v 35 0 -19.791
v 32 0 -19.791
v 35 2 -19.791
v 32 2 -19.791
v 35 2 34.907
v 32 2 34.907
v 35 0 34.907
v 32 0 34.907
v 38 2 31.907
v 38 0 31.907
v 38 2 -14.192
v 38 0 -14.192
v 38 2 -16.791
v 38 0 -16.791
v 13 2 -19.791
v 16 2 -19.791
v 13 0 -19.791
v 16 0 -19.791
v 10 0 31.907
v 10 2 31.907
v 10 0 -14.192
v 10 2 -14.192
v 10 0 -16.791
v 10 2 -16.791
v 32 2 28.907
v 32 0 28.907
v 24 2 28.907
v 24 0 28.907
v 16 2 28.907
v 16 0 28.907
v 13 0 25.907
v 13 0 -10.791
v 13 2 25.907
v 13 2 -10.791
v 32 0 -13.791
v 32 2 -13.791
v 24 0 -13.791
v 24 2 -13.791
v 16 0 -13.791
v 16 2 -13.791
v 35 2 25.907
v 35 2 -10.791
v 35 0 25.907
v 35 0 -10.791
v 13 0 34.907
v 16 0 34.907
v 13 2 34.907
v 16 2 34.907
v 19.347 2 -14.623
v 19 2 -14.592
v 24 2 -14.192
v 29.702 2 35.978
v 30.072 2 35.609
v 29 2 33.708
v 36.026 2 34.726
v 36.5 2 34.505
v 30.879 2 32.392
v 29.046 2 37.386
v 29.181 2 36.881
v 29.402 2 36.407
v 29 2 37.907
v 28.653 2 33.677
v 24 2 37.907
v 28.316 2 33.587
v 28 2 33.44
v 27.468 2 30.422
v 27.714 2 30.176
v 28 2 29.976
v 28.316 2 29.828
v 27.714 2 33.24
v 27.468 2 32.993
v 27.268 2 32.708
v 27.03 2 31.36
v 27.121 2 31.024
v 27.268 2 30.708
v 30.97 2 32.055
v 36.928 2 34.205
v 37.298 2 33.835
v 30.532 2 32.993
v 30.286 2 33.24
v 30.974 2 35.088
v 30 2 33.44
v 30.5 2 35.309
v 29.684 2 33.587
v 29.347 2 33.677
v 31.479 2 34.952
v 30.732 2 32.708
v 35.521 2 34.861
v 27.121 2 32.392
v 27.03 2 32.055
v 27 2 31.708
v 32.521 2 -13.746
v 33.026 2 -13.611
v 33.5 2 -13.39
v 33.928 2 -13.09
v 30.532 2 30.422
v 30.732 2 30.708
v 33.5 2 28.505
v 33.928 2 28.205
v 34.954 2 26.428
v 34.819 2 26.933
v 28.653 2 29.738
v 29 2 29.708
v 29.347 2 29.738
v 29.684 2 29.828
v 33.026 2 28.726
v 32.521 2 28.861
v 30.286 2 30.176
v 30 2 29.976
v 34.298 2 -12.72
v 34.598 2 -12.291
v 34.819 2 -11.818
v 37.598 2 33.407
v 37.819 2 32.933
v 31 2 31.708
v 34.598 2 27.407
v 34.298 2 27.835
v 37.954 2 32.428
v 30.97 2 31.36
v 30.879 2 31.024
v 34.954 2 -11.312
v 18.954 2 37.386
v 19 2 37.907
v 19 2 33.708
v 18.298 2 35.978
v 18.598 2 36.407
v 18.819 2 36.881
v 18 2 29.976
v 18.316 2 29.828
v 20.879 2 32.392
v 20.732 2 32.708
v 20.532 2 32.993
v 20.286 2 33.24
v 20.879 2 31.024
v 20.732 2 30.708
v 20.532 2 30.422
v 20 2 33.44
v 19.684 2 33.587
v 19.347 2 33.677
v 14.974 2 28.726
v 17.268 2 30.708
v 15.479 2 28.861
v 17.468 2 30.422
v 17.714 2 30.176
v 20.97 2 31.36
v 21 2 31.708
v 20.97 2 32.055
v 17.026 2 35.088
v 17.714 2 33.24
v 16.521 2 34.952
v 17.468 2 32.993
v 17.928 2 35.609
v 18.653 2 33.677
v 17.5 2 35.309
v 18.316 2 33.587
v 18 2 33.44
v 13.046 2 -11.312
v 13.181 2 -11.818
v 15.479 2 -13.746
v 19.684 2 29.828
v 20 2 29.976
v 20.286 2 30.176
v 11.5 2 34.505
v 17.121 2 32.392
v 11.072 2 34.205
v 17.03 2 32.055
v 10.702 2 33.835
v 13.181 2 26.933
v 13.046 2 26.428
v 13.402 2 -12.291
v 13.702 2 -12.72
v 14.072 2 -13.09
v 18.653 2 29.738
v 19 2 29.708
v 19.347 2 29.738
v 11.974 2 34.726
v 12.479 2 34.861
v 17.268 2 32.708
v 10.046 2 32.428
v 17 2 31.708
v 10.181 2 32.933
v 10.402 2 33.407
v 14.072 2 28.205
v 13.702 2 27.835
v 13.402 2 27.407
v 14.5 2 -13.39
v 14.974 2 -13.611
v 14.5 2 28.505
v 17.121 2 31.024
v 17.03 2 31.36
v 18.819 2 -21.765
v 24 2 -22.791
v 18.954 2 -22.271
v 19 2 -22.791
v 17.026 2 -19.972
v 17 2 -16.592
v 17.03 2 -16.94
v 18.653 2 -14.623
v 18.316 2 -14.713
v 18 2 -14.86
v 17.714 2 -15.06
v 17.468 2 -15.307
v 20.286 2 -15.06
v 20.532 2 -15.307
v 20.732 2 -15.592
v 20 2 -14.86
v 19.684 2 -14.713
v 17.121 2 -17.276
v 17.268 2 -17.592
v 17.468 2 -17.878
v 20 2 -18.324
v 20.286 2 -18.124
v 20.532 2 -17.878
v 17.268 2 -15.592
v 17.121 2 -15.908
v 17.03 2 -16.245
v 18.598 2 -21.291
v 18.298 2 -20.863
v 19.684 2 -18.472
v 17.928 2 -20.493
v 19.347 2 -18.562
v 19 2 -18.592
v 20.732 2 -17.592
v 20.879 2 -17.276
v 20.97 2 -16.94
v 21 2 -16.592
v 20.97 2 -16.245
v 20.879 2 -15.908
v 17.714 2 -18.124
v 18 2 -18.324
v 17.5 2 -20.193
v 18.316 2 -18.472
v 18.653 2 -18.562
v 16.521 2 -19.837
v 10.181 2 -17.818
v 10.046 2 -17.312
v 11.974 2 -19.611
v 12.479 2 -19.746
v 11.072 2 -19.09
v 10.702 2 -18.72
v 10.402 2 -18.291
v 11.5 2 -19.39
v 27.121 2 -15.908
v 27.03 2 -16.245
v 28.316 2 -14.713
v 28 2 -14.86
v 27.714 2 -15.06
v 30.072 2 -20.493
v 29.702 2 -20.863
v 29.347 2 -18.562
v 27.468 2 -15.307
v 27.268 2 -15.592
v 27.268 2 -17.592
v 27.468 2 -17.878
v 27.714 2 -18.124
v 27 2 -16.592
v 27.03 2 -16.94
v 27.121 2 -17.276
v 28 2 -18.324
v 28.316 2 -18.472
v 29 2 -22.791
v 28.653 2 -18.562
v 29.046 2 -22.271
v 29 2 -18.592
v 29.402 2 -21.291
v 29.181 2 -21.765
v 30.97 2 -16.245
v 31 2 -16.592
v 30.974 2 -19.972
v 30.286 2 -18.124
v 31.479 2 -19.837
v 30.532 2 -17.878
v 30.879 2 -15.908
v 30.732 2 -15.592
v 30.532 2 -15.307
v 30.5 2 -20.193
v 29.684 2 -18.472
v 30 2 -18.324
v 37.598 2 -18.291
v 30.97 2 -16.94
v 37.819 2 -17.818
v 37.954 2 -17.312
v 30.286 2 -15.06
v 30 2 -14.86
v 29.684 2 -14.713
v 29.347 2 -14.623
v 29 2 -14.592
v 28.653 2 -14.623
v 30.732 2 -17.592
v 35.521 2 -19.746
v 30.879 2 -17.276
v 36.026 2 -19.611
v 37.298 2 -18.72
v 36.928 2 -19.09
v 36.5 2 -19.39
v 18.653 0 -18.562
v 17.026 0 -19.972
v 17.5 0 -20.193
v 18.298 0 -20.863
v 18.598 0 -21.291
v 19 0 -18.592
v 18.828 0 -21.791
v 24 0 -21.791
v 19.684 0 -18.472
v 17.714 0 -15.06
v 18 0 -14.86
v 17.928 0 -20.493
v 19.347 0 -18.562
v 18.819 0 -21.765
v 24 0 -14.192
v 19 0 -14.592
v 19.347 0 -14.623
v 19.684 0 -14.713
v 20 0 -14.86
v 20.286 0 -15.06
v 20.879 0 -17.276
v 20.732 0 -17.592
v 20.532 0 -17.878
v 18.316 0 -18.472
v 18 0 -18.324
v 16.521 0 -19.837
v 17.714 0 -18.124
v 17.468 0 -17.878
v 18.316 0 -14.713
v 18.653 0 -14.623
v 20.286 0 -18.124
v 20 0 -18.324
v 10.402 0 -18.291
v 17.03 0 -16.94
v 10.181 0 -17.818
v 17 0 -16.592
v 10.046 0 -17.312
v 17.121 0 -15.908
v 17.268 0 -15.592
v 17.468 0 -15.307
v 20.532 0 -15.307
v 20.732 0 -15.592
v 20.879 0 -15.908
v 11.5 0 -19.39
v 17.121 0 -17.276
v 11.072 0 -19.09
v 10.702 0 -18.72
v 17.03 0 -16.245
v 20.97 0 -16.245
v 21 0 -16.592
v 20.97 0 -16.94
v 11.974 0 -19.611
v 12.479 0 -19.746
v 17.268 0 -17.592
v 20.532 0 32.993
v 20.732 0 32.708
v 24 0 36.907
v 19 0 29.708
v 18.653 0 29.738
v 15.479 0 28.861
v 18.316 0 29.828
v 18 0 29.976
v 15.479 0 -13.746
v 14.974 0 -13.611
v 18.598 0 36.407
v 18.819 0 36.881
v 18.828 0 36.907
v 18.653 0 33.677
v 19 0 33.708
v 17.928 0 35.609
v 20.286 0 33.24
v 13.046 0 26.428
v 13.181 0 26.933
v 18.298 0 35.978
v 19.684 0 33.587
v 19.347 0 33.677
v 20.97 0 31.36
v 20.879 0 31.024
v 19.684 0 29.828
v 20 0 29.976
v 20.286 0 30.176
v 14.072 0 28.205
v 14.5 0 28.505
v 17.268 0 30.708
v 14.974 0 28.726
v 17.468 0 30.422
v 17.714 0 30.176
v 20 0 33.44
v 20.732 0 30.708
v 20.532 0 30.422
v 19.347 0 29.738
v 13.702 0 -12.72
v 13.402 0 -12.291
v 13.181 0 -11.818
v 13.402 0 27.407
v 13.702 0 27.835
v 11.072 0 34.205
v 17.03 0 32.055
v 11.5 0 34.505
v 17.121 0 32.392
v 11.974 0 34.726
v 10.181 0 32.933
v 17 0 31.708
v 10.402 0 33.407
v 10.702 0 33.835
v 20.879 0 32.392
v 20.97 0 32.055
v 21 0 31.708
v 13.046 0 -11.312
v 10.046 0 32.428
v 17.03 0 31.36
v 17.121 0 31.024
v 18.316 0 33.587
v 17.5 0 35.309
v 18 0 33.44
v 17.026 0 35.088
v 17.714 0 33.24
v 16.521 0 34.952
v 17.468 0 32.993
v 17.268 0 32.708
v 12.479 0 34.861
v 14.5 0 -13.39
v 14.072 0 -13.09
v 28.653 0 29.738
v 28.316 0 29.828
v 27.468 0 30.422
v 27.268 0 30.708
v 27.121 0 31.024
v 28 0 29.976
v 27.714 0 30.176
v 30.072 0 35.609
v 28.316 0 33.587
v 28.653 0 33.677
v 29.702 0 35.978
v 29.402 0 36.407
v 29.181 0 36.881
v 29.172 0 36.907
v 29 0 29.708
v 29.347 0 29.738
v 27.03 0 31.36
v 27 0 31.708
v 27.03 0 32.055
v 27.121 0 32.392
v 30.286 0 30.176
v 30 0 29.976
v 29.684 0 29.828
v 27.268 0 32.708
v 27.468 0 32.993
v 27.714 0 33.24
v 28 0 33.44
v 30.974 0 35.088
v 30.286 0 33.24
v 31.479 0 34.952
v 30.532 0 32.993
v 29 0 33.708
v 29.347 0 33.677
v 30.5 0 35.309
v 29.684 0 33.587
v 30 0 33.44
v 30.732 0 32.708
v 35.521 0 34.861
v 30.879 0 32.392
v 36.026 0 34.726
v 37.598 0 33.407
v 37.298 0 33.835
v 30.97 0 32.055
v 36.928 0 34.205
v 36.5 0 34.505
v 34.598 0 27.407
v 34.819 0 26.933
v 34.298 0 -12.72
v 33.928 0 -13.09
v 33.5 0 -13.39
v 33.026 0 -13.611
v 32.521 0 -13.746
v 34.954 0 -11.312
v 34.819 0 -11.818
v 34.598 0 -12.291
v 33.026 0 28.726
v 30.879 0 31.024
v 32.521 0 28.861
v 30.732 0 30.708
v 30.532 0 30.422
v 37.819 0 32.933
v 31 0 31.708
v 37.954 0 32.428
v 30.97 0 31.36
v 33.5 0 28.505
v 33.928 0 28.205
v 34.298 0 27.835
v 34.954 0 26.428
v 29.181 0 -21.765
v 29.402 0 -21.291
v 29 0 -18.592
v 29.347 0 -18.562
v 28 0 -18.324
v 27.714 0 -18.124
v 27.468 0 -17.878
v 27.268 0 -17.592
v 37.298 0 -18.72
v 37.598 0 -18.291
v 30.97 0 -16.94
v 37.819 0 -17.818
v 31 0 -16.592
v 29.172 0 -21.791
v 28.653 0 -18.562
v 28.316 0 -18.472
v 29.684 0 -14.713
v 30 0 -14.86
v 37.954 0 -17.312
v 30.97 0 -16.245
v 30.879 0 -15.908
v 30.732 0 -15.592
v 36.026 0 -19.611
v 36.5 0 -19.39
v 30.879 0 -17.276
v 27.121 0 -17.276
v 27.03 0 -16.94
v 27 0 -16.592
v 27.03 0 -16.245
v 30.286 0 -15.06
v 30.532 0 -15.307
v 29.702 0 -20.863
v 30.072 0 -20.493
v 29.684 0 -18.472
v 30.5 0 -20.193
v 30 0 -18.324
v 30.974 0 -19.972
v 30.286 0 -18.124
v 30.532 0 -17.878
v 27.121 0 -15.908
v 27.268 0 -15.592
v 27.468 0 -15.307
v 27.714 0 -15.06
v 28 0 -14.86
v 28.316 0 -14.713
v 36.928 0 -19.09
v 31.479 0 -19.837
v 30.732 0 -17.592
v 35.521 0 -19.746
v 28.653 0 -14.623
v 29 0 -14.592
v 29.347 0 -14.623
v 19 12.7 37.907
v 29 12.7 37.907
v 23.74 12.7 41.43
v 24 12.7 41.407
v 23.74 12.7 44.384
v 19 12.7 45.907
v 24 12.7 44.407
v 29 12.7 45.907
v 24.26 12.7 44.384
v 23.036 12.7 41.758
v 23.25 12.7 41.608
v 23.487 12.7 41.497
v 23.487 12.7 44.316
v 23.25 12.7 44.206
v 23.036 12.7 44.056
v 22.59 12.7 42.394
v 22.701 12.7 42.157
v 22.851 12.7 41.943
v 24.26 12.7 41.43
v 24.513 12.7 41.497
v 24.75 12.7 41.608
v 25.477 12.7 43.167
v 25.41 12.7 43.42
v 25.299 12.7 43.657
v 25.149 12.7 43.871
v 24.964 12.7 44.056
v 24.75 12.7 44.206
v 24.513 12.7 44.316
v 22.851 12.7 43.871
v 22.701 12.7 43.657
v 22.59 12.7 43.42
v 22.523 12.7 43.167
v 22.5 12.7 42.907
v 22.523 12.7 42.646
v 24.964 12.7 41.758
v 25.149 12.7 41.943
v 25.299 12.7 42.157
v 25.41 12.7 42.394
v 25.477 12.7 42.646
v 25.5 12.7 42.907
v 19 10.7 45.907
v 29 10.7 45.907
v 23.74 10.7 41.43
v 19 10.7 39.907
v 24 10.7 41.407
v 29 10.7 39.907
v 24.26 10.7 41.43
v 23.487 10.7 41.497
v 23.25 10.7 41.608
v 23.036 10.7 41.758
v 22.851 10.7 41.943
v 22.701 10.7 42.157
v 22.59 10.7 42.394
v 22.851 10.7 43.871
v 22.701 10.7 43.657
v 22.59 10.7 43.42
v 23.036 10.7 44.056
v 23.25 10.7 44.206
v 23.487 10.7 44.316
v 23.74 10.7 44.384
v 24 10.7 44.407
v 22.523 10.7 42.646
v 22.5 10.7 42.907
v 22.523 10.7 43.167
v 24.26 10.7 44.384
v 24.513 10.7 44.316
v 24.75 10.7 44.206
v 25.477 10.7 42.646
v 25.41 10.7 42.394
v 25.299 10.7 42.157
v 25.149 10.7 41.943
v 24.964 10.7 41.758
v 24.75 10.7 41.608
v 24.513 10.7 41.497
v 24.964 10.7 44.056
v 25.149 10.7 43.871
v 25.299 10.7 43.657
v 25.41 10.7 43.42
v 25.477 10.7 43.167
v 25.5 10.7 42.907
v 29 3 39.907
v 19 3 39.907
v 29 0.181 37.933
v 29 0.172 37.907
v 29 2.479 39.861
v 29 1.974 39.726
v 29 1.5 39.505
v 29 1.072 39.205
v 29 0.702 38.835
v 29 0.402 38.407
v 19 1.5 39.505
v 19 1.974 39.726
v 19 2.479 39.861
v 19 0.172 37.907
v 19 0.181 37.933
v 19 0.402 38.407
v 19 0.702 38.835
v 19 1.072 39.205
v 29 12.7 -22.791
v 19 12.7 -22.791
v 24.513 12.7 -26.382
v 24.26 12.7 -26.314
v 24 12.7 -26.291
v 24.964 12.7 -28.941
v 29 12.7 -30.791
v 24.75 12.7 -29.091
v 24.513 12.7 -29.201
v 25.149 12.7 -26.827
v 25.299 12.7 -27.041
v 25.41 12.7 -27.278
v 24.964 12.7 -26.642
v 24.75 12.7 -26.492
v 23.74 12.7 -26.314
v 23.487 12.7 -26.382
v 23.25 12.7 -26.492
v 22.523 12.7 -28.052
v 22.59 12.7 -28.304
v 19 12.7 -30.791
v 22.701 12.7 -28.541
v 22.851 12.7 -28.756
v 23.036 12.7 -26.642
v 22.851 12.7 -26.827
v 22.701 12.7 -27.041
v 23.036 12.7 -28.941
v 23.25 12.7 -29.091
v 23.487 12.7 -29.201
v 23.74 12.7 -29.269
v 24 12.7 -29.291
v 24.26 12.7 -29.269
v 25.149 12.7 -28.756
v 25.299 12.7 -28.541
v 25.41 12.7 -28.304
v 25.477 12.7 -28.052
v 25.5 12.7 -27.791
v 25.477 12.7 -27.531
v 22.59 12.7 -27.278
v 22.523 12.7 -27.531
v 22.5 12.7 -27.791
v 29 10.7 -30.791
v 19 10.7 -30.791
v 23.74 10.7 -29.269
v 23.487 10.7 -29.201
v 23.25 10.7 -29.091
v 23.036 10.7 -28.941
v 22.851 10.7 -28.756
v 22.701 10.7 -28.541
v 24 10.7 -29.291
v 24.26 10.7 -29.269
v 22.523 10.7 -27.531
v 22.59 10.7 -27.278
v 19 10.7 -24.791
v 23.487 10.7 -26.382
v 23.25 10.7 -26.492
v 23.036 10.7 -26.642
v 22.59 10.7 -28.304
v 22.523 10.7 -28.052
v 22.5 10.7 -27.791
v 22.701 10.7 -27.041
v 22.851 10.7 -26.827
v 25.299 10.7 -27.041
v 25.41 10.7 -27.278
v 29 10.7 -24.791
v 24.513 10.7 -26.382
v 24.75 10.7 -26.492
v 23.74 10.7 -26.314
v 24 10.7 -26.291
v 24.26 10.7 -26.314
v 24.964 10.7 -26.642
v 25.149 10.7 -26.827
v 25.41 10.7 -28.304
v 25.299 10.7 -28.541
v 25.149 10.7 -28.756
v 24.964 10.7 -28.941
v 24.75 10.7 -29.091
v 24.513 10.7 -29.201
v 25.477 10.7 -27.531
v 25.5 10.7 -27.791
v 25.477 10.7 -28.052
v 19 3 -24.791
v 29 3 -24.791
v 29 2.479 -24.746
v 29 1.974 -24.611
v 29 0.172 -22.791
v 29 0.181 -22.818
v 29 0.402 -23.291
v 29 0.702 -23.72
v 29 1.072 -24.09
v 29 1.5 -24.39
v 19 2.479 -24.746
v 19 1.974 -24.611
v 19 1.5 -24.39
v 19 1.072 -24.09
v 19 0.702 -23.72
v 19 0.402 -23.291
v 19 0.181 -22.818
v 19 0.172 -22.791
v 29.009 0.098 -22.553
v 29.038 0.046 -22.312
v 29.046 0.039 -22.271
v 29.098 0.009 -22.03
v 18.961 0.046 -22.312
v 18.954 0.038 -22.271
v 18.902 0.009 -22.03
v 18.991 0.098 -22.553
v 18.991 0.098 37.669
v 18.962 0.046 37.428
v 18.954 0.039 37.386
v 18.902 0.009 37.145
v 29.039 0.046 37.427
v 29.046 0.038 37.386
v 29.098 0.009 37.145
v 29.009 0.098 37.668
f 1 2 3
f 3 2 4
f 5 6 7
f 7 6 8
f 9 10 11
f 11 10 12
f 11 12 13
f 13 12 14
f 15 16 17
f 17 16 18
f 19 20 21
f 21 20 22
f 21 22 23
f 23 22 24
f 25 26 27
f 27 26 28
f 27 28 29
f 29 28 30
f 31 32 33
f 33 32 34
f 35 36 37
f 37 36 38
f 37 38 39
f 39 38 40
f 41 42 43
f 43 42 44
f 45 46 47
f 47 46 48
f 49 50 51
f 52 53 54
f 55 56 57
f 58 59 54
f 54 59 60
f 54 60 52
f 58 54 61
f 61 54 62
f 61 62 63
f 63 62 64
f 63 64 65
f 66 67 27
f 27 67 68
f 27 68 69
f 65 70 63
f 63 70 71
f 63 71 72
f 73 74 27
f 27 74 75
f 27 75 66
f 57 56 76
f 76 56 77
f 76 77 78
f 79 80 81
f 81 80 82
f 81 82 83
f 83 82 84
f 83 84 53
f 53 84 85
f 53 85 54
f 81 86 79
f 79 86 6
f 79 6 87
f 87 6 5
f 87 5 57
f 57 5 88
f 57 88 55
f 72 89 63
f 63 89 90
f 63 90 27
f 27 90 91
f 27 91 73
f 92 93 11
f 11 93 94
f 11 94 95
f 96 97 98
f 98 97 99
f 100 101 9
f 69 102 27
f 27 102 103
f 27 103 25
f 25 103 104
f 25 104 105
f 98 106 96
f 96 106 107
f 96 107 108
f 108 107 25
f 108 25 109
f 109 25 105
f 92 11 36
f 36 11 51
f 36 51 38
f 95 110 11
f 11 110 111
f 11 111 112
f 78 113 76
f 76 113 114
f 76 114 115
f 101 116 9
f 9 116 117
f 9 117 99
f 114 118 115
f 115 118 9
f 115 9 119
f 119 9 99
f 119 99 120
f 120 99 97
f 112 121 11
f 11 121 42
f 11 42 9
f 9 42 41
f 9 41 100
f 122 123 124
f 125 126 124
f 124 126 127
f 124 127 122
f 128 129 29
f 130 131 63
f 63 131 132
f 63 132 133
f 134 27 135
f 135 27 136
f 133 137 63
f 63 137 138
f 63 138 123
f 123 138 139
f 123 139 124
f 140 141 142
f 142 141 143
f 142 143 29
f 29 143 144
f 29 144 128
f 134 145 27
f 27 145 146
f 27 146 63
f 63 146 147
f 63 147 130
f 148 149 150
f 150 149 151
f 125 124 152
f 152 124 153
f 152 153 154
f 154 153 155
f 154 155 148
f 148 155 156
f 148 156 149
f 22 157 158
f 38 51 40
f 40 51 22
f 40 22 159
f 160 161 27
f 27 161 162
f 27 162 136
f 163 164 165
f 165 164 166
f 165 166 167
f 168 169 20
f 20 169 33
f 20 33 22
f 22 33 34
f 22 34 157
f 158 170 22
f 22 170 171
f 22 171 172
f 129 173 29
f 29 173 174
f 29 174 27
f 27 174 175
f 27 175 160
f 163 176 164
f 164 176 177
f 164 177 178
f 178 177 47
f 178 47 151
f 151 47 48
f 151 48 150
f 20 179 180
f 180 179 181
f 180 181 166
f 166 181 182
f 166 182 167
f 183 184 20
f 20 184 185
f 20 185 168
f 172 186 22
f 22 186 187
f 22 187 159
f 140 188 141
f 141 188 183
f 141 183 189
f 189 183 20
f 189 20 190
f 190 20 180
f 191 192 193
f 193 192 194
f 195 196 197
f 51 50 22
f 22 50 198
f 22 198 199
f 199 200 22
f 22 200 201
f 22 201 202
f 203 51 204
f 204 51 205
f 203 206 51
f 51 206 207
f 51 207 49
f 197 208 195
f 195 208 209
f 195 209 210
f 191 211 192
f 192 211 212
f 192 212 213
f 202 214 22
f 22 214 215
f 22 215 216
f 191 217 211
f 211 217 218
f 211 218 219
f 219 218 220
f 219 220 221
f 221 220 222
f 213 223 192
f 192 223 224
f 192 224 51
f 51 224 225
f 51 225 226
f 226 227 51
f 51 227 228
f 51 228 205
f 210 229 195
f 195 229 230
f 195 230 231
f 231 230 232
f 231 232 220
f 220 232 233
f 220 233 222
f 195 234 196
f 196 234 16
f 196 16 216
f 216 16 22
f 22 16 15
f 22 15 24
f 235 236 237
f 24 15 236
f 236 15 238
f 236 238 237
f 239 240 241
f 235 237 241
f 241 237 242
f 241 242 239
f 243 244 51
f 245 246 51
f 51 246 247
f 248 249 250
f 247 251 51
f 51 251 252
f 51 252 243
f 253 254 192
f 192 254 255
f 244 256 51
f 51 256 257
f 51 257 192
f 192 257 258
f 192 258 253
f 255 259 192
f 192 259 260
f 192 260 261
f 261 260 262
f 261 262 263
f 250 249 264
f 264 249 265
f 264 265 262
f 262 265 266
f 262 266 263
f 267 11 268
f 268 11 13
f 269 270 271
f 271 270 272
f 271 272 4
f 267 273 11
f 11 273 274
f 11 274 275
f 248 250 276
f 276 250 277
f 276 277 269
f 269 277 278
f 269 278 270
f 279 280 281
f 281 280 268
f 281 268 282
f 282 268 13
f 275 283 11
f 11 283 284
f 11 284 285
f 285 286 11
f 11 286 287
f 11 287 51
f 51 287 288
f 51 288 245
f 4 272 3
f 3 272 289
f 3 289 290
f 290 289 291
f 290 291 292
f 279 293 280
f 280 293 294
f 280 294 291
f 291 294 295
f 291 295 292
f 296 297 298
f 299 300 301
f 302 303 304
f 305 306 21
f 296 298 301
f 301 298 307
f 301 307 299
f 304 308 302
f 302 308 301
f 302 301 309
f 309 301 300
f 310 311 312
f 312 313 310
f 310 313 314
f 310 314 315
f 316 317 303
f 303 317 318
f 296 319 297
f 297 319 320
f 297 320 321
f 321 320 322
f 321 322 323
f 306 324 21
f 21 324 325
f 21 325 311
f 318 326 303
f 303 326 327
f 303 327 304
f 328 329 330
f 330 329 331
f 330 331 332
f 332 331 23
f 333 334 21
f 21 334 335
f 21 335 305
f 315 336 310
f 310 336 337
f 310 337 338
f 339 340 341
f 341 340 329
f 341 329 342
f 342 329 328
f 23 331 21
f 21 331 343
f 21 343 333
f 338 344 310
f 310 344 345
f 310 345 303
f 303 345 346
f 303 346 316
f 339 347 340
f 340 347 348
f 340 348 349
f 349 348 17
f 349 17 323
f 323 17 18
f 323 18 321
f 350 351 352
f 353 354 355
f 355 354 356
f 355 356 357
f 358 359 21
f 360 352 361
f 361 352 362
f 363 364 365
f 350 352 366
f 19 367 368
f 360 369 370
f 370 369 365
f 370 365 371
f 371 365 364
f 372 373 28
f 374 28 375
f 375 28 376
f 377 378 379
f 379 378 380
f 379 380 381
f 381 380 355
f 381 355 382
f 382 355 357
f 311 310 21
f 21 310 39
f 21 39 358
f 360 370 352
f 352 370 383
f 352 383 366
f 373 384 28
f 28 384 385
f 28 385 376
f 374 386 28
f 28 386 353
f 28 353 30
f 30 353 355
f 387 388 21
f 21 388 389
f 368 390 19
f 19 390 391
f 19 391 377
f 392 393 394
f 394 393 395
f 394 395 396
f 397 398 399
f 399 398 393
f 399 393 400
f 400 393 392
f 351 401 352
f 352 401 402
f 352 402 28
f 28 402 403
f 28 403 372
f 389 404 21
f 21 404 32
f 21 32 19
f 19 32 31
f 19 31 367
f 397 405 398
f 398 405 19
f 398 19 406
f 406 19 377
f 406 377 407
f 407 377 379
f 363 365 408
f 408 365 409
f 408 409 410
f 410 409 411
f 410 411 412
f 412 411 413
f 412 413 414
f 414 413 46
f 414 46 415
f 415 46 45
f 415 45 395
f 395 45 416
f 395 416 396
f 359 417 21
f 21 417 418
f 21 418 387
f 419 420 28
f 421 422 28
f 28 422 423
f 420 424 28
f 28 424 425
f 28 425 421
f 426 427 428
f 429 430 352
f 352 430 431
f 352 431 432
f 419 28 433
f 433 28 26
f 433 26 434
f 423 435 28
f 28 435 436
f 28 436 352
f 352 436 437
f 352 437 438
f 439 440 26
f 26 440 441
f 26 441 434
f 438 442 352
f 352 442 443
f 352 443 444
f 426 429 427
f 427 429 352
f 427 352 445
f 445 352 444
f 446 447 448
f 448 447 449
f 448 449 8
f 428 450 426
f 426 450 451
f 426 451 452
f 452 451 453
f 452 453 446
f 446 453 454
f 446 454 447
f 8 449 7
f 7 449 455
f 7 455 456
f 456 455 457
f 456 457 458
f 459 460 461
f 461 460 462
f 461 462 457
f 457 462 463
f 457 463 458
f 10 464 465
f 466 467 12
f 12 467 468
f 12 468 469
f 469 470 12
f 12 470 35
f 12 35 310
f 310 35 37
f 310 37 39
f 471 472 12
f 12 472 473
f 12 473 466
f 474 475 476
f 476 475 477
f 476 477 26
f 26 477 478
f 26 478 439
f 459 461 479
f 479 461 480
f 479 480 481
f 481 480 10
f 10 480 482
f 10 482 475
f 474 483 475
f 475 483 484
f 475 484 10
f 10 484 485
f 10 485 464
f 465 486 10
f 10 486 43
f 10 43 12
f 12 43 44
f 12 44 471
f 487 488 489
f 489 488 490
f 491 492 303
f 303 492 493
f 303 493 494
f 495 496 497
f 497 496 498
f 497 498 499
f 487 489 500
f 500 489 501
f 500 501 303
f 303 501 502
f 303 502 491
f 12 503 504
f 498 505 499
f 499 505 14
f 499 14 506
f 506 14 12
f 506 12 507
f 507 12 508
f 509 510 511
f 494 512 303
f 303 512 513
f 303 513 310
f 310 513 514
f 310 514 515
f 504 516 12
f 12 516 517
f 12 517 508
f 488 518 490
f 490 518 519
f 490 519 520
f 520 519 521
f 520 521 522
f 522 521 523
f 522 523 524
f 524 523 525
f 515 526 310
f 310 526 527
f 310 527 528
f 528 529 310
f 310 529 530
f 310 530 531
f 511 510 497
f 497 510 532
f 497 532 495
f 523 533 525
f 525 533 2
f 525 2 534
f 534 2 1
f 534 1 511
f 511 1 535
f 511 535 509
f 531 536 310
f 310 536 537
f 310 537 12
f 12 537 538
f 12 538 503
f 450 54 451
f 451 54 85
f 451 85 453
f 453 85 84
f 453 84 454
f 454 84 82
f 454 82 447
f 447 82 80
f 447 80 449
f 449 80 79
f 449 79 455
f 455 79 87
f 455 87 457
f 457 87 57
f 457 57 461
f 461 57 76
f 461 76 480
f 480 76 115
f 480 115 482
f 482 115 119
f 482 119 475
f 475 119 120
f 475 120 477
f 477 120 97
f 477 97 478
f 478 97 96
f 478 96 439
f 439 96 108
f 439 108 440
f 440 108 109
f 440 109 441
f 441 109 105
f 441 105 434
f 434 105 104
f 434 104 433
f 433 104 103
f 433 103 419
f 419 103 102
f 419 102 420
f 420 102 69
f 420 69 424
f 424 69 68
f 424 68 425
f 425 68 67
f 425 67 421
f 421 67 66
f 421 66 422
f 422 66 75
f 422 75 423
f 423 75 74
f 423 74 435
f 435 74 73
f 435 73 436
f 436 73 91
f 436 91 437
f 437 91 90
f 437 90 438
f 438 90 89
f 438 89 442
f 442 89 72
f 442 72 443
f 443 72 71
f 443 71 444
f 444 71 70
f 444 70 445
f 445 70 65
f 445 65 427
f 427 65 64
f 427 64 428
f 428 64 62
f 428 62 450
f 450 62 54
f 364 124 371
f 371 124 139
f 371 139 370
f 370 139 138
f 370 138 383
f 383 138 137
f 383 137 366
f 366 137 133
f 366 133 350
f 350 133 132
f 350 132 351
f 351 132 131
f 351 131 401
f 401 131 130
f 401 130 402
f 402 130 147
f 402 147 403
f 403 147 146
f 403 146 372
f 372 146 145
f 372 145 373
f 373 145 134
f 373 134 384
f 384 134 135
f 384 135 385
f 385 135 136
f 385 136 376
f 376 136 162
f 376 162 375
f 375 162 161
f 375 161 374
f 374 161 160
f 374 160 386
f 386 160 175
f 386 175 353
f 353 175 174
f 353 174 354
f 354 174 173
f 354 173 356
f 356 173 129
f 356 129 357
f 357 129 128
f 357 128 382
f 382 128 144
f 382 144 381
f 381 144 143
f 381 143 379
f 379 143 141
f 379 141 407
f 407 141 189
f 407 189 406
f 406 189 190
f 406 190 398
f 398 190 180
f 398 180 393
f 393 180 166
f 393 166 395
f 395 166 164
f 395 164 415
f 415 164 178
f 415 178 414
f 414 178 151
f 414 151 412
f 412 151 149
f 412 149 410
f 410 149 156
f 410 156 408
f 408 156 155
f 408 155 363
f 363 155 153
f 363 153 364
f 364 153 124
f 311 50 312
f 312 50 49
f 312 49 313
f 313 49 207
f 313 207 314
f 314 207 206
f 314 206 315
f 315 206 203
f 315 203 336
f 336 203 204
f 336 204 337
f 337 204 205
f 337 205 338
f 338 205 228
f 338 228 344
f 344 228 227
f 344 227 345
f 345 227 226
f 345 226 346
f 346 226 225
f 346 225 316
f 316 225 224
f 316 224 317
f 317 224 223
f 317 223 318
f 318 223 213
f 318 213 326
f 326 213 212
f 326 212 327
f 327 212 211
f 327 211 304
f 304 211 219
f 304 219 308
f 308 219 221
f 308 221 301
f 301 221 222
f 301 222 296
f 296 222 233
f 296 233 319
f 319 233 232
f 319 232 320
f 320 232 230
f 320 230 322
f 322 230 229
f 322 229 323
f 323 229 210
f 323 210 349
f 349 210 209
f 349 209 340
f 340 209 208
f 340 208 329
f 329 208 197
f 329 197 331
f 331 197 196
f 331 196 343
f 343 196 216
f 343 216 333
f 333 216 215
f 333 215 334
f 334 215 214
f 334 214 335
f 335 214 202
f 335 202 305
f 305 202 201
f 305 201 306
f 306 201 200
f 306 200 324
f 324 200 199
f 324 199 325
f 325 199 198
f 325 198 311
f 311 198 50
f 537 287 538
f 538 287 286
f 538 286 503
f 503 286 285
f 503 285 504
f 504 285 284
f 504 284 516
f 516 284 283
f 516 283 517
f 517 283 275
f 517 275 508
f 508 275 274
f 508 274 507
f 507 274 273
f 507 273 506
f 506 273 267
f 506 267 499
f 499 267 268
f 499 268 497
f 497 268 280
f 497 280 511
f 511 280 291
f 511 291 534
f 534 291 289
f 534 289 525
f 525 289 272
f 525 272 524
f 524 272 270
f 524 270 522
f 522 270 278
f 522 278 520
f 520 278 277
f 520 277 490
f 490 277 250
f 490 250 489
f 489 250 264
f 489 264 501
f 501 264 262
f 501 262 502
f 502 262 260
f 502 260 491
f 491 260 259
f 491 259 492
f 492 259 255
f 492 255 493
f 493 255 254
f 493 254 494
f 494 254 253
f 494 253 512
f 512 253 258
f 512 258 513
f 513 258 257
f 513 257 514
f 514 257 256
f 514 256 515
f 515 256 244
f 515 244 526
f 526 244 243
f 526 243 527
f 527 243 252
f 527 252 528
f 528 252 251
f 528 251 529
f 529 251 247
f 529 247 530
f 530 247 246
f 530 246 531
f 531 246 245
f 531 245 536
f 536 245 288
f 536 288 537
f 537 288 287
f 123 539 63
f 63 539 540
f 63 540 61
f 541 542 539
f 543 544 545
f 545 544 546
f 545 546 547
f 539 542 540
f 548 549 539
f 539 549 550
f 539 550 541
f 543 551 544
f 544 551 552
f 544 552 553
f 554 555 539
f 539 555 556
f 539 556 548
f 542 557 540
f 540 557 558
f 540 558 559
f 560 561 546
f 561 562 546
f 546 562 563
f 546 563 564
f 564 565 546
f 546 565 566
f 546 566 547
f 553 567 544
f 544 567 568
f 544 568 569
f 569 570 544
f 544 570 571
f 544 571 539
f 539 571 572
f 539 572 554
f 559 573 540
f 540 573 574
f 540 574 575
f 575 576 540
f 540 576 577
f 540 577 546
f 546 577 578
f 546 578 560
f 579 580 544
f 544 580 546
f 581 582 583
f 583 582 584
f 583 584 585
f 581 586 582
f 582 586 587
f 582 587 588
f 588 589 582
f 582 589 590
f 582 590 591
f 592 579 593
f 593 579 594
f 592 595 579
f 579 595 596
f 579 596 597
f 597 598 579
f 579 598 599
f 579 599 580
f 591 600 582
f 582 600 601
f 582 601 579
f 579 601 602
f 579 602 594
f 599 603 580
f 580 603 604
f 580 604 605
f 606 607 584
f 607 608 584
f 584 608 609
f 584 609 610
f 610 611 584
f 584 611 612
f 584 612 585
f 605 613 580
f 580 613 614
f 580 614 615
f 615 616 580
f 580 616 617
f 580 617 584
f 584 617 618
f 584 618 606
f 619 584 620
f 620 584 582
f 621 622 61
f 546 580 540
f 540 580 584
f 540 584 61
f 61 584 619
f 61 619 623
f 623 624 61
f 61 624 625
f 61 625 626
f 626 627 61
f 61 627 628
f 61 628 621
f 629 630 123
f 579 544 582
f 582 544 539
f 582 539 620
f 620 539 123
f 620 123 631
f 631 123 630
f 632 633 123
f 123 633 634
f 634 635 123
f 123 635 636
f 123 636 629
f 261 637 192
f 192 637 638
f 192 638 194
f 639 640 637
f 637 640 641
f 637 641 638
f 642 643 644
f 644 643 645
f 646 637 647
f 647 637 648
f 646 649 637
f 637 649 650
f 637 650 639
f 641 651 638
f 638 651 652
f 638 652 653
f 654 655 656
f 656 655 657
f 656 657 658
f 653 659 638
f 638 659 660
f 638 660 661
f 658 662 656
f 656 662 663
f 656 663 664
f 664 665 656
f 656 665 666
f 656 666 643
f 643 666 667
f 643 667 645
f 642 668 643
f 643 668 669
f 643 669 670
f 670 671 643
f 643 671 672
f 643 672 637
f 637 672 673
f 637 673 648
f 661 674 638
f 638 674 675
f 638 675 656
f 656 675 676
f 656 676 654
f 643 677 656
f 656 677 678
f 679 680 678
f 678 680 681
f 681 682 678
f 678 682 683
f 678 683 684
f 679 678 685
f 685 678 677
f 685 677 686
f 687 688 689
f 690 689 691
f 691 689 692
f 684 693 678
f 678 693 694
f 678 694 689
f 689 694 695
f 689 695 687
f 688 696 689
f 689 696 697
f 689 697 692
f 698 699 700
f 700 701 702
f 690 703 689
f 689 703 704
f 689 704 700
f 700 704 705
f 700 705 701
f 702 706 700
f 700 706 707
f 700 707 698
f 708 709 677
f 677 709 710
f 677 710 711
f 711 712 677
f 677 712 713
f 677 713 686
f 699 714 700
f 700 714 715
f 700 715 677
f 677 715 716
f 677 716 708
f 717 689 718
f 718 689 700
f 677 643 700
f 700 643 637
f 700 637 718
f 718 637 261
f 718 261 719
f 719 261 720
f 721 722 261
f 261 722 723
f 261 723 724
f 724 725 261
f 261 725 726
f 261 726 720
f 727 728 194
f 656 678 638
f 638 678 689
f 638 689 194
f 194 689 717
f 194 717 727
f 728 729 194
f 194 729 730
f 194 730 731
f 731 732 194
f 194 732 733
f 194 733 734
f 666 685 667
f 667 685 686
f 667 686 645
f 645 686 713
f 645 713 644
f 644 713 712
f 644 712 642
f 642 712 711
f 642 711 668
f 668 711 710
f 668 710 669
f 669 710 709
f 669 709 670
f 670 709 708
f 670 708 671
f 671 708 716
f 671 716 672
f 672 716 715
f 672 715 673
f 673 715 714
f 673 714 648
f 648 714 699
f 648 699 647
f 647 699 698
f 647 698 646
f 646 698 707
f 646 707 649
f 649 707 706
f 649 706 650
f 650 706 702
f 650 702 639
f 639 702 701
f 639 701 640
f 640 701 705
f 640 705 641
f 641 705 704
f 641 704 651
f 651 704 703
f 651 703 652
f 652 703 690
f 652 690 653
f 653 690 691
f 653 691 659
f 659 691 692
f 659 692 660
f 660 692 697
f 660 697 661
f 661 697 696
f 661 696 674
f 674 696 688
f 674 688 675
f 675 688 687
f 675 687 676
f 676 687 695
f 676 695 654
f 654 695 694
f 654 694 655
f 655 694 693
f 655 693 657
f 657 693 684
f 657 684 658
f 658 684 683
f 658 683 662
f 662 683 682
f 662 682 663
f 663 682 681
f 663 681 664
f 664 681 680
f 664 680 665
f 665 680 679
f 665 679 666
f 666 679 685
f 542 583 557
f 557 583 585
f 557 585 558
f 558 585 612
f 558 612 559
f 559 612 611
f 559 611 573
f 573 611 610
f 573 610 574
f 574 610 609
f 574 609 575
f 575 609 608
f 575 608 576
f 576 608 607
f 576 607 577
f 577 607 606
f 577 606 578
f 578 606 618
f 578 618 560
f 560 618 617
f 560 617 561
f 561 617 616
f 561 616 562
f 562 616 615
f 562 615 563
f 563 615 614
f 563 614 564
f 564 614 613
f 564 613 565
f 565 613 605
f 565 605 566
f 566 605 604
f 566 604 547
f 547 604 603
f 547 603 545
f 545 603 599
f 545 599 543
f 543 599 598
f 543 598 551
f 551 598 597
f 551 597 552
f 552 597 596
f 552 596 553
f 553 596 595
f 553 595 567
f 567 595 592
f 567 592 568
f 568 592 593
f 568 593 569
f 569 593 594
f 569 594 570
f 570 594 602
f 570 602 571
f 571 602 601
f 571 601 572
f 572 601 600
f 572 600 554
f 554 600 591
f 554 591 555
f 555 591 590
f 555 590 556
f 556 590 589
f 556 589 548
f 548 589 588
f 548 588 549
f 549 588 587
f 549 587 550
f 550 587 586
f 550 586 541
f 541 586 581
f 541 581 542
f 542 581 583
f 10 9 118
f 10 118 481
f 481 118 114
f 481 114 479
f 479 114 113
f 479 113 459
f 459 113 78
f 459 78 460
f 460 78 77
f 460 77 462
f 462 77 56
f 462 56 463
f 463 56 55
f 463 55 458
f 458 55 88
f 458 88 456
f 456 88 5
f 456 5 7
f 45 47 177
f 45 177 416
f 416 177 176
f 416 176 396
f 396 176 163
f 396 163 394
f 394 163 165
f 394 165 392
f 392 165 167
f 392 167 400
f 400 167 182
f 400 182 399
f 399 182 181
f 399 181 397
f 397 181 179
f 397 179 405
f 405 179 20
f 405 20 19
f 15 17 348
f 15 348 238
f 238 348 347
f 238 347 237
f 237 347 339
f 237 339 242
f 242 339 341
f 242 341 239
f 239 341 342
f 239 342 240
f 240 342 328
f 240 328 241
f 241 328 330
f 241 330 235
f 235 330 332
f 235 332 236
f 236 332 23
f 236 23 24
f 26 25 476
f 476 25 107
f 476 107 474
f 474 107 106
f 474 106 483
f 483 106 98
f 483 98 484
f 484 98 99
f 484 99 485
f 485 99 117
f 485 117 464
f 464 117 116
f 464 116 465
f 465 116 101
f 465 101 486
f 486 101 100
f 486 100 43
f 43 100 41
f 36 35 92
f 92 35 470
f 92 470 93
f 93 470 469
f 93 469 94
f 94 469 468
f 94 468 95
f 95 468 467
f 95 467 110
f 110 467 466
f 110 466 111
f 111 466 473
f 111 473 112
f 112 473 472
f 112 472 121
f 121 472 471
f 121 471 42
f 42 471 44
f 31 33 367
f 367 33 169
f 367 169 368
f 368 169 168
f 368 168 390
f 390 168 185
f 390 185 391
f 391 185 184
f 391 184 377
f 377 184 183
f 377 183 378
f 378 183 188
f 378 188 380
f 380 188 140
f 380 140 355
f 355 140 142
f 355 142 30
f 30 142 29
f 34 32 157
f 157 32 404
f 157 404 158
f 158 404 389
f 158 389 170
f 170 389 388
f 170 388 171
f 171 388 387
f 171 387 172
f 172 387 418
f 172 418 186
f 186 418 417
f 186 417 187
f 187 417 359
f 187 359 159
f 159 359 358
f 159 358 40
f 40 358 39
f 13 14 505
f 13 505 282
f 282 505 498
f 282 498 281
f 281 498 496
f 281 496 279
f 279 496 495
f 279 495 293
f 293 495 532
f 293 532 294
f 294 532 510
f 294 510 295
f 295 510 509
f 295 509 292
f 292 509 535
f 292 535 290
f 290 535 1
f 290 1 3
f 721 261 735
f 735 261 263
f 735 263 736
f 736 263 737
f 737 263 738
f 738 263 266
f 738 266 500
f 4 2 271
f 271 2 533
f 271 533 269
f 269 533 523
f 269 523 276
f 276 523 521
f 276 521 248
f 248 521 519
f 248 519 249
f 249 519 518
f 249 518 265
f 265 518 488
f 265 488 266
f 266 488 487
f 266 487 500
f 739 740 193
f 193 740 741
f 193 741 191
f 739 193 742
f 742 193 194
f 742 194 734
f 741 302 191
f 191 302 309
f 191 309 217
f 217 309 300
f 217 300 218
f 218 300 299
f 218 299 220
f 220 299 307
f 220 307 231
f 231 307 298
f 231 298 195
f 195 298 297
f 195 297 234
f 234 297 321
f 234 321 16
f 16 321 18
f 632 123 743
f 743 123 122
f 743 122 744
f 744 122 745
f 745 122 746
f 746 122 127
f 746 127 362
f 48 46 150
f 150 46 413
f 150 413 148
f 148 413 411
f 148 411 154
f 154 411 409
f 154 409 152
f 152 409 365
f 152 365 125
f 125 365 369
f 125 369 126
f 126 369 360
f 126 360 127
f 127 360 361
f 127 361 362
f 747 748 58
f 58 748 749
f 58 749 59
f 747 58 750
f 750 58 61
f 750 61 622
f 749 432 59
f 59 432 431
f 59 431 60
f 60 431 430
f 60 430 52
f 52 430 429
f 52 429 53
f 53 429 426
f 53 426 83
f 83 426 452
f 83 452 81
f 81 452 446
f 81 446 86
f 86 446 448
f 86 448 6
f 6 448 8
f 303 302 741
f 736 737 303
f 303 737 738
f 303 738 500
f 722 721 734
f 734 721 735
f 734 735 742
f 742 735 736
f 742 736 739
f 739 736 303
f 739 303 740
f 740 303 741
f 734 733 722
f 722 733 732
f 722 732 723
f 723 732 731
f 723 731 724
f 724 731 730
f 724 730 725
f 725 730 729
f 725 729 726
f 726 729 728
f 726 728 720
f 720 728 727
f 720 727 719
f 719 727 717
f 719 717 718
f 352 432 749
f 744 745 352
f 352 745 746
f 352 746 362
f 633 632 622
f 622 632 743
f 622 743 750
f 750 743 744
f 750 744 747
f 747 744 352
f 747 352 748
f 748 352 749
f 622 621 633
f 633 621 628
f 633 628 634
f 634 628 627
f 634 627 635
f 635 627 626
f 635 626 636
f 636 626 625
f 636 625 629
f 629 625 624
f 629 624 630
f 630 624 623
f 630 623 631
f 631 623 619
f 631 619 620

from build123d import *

# Parameters (mm, degrees)
BOSS_EXTRUDE2_DEPTH      = 2
SKETCH3_R                = 2
CUT_EXTRUDE1_DEPTH       = 2
BOSS_EXTRUDE3_DEPTH      = 5
BOSS_EXTRUDE3_DEPTH_BACK = 5
BOSS_EXTRUDE3_START      = -14
BOSS_EXTRUDE4_START      = -19
BOSS_EXTRUDE4_DEPTH      = 10
SKETCH5_R                = 1.5
CUT_EXTRUDE2_DEPTH       = 5
FILLET1_R                = 3
FILLET2_R                = 3


with BuildPart() as part:
    # Sketch2 → Boss-Extrude2 (new body)
    with BuildSketch(Plane(origin=(0, 0, -0.175945046), x_dir=(1, 0, 0), z_dir=(0, 1, 0))):
        Polygon((10, 12.615523277), (10, -28.082679321), (10, -35.082679321), (38, -35.082679321), (38, -28.082679321), (38, 12.615523277), (38, 19.615523277), (10, 19.615523277), align=None)
        Polygon((13, -7.733578022), (13, 12.615523277), (13, 13.615523277), (35, 13.615523277), (35, 12.615523277), (35, -7.733578022), (35, -28.082679321), (35, -29.082679321), (13, -29.082679321), (13, -28.082679321), align=None, mode=Mode.SUBTRACT)
    extrude(amount=BOSS_EXTRUDE2_DEPTH)

    # Sketch3 → Cut-Extrude1 (cut)
    with BuildSketch(Plane(origin=(0, 2, 0), x_dir=(1, 0, 0), z_dir=(0, 1, 0))):
        with Locations(Location((29, -31.707632976, 0), (0, 0, 270))):
            Circle(SKETCH3_R)
        with Locations(Location((19, -31.707632976, 0), (0, 0, 270))):
            Circle(SKETCH3_R)
        with Locations(Location((19, 16.592367024, 0), (0, 0, 270))):
            Circle(SKETCH3_R)
        with Locations(Location((29, 16.592367024, 0), (0, 0, 270))):
            Circle(SKETCH3_R)
    extrude(amount=-CUT_EXTRUDE1_DEPTH, mode=Mode.SUBTRACT)

    # Sketch4 → Boss-Extrude3 (add, two sides: drawn at the far end of the back side and taken through both)
    with BuildSketch(Plane(origin=(38, 0, 0), x_dir=(0, 0, -1), z_dir=(1, 0, 0)).offset(BOSS_EXTRUDE3_START - BOSS_EXTRUDE3_DEPTH_BACK)):
        Polygon((-34.906734274, 0), (-39.906734274, 0), (-39.906734274, 10.7), (-45.906734274, 10.7), (-45.906734274, 12.7), (-40.011651192, 12.7), (-37.906734274, 12.7), (-37.906734274, 2), (-34.906734274, 2), align=None)
    extrude(amount=BOSS_EXTRUDE3_DEPTH + BOSS_EXTRUDE3_DEPTH_BACK)

    # Sketch6 → Boss-Extrude4 (add)
    with BuildSketch(Plane(origin=(38, 0, 0), x_dir=(0, 0, -1), z_dir=(1, 0, 0)).offset(BOSS_EXTRUDE4_START)):
        Polygon((24.791468323, 0), (19.791468323, 0), (19.791468323, 2), (22.791468323, 2), (22.791468323, 12.7), (30.791468323, 12.7), (30.791468323, 10.7), (24.791468323, 10.7), align=None)
    extrude(amount=BOSS_EXTRUDE4_DEPTH)

    # Sketch5 → Cut-Extrude2 (cut)
    with BuildSketch(Plane.XZ.offset(-10.7)):
        with Locations(Location((24, -27.791468323, 0), (0, 0, 270))):
            Circle(SKETCH5_R)
        with Locations(Location((24, 42.906734274, 0), (0, 0, 270))):
            Circle(SKETCH5_R)
    extrude(amount=-CUT_EXTRUDE2_DEPTH, mode=Mode.SUBTRACT)

    # Fillet1
    fillet1_edges = [part.edges().sort_by_distance(p)[0] for p in [
        (38, 1, 34.906734274),
        (10, 1, 34.906734274),
        (10, 1, -19.791468323),
        (35, 1, 28.906734274),
        (35, 1, -13.791468323),
        (13, 1, 28.906734274),
        (13, 1, -13.791468323),
        (38, 1, -19.791468323),
        (29, 1, -19.791468323),
        (19, 1, -19.791468323),
        (19, 1, 34.906734274),
        (29, 1, 34.906734274),
    ]]
    fillet(fillet1_edges, radius=FILLET1_R)

    # Fillet2
    fillet2_edges = [part.edges().sort_by_distance(p)[0] for p in [
        (24, 0, -24.791468323),
        (24, 0, 39.906734274),
    ]]
    fillet(fillet2_edges, radius=FILLET2_R)


solid = part.part
